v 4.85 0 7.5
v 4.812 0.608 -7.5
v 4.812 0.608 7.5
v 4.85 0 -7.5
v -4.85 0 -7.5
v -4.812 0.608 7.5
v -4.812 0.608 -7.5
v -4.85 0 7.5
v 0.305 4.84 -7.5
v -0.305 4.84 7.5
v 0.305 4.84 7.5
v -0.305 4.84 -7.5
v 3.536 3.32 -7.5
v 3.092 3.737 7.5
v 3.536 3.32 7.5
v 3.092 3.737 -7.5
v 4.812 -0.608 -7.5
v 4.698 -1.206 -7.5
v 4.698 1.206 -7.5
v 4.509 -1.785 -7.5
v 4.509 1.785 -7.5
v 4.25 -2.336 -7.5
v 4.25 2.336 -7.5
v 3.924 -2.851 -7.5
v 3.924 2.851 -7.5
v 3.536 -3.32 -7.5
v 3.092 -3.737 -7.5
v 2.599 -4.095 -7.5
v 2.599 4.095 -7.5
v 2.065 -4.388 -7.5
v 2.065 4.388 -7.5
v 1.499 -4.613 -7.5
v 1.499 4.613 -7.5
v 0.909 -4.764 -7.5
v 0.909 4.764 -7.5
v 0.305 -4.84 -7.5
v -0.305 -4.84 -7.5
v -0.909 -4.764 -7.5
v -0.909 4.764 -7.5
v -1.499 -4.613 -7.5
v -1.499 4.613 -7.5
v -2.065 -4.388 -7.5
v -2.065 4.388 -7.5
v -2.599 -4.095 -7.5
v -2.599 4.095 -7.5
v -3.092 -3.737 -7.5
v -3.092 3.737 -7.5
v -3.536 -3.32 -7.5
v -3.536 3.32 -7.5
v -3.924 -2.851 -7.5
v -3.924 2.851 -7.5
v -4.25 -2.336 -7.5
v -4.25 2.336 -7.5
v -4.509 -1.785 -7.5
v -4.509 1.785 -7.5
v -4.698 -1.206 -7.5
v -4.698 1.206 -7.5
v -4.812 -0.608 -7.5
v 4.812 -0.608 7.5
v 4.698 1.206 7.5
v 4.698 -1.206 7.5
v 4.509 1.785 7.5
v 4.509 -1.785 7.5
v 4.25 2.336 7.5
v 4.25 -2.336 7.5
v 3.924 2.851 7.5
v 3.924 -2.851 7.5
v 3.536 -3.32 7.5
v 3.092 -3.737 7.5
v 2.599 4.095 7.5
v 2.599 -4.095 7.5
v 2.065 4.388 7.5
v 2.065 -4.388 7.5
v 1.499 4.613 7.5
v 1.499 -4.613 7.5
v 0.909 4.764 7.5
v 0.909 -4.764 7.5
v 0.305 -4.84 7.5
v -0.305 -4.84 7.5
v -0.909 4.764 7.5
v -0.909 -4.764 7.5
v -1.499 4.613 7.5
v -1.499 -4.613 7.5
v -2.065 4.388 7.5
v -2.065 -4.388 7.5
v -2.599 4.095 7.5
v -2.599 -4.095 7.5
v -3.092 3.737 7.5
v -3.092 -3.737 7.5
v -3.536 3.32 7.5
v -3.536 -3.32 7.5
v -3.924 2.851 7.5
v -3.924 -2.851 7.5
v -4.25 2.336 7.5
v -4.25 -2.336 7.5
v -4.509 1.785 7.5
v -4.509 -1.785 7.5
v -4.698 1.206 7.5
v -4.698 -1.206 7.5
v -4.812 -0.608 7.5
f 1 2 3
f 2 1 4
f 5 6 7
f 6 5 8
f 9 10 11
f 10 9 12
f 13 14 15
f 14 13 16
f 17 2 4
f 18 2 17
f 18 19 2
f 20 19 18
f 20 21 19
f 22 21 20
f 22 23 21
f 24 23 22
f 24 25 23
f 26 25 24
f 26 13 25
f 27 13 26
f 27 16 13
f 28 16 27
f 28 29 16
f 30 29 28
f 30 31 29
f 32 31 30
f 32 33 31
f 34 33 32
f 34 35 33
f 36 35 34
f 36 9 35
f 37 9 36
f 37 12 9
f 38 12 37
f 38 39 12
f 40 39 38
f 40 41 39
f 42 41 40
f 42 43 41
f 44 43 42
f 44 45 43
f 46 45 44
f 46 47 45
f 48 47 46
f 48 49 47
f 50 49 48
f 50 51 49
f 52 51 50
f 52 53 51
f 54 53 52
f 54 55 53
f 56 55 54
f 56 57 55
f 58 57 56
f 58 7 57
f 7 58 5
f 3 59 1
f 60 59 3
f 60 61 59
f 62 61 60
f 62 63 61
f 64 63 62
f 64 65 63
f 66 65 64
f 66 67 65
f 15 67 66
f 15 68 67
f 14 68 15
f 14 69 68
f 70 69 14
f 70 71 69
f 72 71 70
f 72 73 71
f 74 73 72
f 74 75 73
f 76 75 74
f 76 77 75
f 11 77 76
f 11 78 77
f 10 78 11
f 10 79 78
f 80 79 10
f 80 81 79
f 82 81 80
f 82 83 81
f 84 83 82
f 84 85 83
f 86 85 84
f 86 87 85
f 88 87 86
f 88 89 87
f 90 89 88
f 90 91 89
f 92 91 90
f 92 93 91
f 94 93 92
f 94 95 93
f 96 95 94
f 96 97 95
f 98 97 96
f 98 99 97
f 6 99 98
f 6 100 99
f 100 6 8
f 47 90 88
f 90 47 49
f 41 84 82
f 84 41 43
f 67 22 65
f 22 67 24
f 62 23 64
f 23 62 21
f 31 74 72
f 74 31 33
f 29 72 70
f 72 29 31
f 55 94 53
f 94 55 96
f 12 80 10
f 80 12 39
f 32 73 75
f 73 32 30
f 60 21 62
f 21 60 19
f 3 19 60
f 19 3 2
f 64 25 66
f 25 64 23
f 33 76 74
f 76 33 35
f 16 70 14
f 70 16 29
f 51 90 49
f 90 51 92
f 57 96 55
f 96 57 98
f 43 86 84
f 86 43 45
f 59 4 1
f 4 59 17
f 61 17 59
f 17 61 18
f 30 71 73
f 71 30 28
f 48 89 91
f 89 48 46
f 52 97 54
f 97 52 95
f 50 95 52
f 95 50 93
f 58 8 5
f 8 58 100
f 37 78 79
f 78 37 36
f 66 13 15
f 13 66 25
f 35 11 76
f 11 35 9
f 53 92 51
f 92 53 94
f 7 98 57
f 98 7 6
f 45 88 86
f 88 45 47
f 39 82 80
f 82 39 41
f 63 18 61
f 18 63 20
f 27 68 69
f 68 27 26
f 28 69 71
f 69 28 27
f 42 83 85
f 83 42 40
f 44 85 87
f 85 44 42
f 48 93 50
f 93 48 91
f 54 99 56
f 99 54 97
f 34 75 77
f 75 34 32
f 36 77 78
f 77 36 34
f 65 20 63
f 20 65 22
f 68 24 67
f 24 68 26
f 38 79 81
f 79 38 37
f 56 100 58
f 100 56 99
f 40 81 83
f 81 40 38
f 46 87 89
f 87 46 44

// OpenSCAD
$fn = 50;


difference() {
	union() {
		translate(v = [0, 0, -7.5000000000]) {
			cylinder(h = 15, r = 4.8500000000);
		}
	}
	union() {
		translate(v = [0, 0, -100.0000000000]) {
			cylinder(h = 200, r = 0);
		}
	}
}
